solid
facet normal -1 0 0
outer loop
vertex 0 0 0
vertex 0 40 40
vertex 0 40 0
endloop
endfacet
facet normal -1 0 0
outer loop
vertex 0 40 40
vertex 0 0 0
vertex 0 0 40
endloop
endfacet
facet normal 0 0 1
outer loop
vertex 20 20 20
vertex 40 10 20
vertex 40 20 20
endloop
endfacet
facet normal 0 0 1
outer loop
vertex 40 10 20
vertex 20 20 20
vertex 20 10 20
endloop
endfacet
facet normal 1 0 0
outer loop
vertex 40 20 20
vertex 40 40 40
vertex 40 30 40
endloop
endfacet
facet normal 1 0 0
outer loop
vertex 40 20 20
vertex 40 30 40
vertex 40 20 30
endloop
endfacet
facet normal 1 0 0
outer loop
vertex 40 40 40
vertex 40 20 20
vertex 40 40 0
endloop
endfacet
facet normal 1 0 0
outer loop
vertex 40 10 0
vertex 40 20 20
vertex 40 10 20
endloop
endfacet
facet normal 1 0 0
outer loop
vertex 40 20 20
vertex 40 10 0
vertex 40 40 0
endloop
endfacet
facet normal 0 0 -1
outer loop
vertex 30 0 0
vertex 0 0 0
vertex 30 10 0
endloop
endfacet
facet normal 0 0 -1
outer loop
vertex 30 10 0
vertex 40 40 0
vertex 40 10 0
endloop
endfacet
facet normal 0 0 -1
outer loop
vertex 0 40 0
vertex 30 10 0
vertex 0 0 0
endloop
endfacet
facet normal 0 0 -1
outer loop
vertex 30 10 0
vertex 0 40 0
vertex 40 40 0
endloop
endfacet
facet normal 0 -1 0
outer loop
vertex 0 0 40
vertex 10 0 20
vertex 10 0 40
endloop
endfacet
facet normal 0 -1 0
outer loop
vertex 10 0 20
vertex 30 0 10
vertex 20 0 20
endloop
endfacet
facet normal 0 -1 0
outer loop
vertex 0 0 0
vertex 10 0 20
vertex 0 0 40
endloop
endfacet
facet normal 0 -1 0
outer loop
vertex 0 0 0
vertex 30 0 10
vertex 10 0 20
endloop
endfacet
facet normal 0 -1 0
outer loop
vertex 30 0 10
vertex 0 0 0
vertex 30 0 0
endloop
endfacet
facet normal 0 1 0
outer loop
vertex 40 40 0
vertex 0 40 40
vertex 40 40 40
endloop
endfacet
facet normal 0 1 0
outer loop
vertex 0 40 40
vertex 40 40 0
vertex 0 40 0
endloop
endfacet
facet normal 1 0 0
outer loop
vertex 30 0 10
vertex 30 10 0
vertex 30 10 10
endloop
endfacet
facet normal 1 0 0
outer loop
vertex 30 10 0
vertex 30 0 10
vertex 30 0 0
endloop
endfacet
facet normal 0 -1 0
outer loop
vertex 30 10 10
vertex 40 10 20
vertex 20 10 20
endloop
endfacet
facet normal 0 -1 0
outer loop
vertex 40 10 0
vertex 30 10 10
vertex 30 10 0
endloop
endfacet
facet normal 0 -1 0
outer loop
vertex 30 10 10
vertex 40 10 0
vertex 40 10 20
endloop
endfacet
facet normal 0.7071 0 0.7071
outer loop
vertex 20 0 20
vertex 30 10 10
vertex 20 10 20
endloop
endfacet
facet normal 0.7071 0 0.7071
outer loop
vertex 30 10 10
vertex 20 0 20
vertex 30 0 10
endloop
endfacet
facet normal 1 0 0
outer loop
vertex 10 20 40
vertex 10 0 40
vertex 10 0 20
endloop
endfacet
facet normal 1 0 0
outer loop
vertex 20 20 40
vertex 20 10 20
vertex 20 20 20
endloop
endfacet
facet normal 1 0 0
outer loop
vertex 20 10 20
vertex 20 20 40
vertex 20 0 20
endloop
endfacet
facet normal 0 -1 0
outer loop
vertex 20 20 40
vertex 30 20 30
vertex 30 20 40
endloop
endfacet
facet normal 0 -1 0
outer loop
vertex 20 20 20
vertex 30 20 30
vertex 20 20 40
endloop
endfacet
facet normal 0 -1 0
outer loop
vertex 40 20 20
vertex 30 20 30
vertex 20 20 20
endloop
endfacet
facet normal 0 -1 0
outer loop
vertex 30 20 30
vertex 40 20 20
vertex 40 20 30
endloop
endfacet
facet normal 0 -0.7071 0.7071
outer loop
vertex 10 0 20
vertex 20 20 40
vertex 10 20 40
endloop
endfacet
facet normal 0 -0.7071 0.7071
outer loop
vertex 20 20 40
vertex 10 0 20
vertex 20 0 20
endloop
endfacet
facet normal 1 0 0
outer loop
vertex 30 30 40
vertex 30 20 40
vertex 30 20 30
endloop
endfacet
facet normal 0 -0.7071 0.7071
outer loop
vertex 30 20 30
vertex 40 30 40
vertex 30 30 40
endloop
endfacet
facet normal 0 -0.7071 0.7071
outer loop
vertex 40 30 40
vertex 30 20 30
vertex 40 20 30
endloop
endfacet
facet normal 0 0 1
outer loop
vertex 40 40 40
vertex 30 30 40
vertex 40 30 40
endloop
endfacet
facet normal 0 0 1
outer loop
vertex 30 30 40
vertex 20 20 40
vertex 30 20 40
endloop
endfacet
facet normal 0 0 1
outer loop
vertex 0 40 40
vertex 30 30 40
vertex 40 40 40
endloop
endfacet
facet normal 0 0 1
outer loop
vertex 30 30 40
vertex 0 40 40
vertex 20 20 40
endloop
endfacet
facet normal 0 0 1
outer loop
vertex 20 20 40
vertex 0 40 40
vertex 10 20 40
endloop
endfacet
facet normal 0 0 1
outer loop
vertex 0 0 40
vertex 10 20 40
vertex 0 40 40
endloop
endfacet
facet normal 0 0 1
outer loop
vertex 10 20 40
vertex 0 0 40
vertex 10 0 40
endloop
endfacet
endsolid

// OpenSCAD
translate([10, 20, 20])
cube([20,10,20]);

 translate([30, 20, 20])
cube([10,10,10]);

   // Plano inclinado 2
  translate([30, 20, 30]) 
  difference(){
   cube([10,10,10]);  
      rotate([45, 0, 0])
  cube([10,30,10]);  
  }
   
   // Plano inclinado 1
  translate([10, 0, 20]) 
  difference(){
   cube([10,20,20]);  
      rotate([45, 0, 0])
  cube([10,30,20]);  
  }
  
  
cube([10,40,40]);
   translate([0, 30, 0]) 
  cube([40,10,40]);  
difference(){
difference(){
cube([40,40,20]);
translate([30, 0, 0])
cube([10,10,20]); 
}
   translate([30, 0, 10]) 
rotate([0, -45, 0])
  cube([10,10,20]);  
}


/*
   translate([20, 0, 10]) 
  cube([10,10,10]); 

difference(){
   translate([30, 0, 10]) 
  cube([10,30,30]);  
translate([30, 0, 10])
rotate([45, 0, 0])
cube([10,50,30]);
}
difference(){
   translate([20, 10, 10]) 
  cube([10,30,30]);  
translate([20, 10, 10])
rotate([56.3, 0, 0])
cube([10,50,30]);
}

difference(){
   translate([10, 20, 10]) 
  cube([10,10,30]);  
translate([10, 20, 10])
rotate([71.56, 0, 0])
cube([10,50,30]);
}

difference(){
difference(){
translate([10, 10, 0])
cube([30,30,40]);
translate([10, 10, 10])
rotate([56.3, 0, 0])
cube([30,50,40]);
}
translate([20, 10, 20])
cube([10,30,40]);
}
cube([20,40,20]);
difference(){
translate([20, 0, 0])
cube([20,40,20]);
 translate([20, 0, 0])
    rotate([45, 0, 0])
cube([20,40,20]);   
}

// cubo con plano doble inclinado
translate([20, 40, 40])
  rotate([180, 0, 270])
    difference() {
      cube([20, 20, 20], center=false);

      mirror([0,0,1]){
        rotate([35, 45, 0]){
          color([1,0.8,0]) {
            cube([28.2, 28.2, 28.2], center=false);
          }
        }
      }
    }
    


    */
  
